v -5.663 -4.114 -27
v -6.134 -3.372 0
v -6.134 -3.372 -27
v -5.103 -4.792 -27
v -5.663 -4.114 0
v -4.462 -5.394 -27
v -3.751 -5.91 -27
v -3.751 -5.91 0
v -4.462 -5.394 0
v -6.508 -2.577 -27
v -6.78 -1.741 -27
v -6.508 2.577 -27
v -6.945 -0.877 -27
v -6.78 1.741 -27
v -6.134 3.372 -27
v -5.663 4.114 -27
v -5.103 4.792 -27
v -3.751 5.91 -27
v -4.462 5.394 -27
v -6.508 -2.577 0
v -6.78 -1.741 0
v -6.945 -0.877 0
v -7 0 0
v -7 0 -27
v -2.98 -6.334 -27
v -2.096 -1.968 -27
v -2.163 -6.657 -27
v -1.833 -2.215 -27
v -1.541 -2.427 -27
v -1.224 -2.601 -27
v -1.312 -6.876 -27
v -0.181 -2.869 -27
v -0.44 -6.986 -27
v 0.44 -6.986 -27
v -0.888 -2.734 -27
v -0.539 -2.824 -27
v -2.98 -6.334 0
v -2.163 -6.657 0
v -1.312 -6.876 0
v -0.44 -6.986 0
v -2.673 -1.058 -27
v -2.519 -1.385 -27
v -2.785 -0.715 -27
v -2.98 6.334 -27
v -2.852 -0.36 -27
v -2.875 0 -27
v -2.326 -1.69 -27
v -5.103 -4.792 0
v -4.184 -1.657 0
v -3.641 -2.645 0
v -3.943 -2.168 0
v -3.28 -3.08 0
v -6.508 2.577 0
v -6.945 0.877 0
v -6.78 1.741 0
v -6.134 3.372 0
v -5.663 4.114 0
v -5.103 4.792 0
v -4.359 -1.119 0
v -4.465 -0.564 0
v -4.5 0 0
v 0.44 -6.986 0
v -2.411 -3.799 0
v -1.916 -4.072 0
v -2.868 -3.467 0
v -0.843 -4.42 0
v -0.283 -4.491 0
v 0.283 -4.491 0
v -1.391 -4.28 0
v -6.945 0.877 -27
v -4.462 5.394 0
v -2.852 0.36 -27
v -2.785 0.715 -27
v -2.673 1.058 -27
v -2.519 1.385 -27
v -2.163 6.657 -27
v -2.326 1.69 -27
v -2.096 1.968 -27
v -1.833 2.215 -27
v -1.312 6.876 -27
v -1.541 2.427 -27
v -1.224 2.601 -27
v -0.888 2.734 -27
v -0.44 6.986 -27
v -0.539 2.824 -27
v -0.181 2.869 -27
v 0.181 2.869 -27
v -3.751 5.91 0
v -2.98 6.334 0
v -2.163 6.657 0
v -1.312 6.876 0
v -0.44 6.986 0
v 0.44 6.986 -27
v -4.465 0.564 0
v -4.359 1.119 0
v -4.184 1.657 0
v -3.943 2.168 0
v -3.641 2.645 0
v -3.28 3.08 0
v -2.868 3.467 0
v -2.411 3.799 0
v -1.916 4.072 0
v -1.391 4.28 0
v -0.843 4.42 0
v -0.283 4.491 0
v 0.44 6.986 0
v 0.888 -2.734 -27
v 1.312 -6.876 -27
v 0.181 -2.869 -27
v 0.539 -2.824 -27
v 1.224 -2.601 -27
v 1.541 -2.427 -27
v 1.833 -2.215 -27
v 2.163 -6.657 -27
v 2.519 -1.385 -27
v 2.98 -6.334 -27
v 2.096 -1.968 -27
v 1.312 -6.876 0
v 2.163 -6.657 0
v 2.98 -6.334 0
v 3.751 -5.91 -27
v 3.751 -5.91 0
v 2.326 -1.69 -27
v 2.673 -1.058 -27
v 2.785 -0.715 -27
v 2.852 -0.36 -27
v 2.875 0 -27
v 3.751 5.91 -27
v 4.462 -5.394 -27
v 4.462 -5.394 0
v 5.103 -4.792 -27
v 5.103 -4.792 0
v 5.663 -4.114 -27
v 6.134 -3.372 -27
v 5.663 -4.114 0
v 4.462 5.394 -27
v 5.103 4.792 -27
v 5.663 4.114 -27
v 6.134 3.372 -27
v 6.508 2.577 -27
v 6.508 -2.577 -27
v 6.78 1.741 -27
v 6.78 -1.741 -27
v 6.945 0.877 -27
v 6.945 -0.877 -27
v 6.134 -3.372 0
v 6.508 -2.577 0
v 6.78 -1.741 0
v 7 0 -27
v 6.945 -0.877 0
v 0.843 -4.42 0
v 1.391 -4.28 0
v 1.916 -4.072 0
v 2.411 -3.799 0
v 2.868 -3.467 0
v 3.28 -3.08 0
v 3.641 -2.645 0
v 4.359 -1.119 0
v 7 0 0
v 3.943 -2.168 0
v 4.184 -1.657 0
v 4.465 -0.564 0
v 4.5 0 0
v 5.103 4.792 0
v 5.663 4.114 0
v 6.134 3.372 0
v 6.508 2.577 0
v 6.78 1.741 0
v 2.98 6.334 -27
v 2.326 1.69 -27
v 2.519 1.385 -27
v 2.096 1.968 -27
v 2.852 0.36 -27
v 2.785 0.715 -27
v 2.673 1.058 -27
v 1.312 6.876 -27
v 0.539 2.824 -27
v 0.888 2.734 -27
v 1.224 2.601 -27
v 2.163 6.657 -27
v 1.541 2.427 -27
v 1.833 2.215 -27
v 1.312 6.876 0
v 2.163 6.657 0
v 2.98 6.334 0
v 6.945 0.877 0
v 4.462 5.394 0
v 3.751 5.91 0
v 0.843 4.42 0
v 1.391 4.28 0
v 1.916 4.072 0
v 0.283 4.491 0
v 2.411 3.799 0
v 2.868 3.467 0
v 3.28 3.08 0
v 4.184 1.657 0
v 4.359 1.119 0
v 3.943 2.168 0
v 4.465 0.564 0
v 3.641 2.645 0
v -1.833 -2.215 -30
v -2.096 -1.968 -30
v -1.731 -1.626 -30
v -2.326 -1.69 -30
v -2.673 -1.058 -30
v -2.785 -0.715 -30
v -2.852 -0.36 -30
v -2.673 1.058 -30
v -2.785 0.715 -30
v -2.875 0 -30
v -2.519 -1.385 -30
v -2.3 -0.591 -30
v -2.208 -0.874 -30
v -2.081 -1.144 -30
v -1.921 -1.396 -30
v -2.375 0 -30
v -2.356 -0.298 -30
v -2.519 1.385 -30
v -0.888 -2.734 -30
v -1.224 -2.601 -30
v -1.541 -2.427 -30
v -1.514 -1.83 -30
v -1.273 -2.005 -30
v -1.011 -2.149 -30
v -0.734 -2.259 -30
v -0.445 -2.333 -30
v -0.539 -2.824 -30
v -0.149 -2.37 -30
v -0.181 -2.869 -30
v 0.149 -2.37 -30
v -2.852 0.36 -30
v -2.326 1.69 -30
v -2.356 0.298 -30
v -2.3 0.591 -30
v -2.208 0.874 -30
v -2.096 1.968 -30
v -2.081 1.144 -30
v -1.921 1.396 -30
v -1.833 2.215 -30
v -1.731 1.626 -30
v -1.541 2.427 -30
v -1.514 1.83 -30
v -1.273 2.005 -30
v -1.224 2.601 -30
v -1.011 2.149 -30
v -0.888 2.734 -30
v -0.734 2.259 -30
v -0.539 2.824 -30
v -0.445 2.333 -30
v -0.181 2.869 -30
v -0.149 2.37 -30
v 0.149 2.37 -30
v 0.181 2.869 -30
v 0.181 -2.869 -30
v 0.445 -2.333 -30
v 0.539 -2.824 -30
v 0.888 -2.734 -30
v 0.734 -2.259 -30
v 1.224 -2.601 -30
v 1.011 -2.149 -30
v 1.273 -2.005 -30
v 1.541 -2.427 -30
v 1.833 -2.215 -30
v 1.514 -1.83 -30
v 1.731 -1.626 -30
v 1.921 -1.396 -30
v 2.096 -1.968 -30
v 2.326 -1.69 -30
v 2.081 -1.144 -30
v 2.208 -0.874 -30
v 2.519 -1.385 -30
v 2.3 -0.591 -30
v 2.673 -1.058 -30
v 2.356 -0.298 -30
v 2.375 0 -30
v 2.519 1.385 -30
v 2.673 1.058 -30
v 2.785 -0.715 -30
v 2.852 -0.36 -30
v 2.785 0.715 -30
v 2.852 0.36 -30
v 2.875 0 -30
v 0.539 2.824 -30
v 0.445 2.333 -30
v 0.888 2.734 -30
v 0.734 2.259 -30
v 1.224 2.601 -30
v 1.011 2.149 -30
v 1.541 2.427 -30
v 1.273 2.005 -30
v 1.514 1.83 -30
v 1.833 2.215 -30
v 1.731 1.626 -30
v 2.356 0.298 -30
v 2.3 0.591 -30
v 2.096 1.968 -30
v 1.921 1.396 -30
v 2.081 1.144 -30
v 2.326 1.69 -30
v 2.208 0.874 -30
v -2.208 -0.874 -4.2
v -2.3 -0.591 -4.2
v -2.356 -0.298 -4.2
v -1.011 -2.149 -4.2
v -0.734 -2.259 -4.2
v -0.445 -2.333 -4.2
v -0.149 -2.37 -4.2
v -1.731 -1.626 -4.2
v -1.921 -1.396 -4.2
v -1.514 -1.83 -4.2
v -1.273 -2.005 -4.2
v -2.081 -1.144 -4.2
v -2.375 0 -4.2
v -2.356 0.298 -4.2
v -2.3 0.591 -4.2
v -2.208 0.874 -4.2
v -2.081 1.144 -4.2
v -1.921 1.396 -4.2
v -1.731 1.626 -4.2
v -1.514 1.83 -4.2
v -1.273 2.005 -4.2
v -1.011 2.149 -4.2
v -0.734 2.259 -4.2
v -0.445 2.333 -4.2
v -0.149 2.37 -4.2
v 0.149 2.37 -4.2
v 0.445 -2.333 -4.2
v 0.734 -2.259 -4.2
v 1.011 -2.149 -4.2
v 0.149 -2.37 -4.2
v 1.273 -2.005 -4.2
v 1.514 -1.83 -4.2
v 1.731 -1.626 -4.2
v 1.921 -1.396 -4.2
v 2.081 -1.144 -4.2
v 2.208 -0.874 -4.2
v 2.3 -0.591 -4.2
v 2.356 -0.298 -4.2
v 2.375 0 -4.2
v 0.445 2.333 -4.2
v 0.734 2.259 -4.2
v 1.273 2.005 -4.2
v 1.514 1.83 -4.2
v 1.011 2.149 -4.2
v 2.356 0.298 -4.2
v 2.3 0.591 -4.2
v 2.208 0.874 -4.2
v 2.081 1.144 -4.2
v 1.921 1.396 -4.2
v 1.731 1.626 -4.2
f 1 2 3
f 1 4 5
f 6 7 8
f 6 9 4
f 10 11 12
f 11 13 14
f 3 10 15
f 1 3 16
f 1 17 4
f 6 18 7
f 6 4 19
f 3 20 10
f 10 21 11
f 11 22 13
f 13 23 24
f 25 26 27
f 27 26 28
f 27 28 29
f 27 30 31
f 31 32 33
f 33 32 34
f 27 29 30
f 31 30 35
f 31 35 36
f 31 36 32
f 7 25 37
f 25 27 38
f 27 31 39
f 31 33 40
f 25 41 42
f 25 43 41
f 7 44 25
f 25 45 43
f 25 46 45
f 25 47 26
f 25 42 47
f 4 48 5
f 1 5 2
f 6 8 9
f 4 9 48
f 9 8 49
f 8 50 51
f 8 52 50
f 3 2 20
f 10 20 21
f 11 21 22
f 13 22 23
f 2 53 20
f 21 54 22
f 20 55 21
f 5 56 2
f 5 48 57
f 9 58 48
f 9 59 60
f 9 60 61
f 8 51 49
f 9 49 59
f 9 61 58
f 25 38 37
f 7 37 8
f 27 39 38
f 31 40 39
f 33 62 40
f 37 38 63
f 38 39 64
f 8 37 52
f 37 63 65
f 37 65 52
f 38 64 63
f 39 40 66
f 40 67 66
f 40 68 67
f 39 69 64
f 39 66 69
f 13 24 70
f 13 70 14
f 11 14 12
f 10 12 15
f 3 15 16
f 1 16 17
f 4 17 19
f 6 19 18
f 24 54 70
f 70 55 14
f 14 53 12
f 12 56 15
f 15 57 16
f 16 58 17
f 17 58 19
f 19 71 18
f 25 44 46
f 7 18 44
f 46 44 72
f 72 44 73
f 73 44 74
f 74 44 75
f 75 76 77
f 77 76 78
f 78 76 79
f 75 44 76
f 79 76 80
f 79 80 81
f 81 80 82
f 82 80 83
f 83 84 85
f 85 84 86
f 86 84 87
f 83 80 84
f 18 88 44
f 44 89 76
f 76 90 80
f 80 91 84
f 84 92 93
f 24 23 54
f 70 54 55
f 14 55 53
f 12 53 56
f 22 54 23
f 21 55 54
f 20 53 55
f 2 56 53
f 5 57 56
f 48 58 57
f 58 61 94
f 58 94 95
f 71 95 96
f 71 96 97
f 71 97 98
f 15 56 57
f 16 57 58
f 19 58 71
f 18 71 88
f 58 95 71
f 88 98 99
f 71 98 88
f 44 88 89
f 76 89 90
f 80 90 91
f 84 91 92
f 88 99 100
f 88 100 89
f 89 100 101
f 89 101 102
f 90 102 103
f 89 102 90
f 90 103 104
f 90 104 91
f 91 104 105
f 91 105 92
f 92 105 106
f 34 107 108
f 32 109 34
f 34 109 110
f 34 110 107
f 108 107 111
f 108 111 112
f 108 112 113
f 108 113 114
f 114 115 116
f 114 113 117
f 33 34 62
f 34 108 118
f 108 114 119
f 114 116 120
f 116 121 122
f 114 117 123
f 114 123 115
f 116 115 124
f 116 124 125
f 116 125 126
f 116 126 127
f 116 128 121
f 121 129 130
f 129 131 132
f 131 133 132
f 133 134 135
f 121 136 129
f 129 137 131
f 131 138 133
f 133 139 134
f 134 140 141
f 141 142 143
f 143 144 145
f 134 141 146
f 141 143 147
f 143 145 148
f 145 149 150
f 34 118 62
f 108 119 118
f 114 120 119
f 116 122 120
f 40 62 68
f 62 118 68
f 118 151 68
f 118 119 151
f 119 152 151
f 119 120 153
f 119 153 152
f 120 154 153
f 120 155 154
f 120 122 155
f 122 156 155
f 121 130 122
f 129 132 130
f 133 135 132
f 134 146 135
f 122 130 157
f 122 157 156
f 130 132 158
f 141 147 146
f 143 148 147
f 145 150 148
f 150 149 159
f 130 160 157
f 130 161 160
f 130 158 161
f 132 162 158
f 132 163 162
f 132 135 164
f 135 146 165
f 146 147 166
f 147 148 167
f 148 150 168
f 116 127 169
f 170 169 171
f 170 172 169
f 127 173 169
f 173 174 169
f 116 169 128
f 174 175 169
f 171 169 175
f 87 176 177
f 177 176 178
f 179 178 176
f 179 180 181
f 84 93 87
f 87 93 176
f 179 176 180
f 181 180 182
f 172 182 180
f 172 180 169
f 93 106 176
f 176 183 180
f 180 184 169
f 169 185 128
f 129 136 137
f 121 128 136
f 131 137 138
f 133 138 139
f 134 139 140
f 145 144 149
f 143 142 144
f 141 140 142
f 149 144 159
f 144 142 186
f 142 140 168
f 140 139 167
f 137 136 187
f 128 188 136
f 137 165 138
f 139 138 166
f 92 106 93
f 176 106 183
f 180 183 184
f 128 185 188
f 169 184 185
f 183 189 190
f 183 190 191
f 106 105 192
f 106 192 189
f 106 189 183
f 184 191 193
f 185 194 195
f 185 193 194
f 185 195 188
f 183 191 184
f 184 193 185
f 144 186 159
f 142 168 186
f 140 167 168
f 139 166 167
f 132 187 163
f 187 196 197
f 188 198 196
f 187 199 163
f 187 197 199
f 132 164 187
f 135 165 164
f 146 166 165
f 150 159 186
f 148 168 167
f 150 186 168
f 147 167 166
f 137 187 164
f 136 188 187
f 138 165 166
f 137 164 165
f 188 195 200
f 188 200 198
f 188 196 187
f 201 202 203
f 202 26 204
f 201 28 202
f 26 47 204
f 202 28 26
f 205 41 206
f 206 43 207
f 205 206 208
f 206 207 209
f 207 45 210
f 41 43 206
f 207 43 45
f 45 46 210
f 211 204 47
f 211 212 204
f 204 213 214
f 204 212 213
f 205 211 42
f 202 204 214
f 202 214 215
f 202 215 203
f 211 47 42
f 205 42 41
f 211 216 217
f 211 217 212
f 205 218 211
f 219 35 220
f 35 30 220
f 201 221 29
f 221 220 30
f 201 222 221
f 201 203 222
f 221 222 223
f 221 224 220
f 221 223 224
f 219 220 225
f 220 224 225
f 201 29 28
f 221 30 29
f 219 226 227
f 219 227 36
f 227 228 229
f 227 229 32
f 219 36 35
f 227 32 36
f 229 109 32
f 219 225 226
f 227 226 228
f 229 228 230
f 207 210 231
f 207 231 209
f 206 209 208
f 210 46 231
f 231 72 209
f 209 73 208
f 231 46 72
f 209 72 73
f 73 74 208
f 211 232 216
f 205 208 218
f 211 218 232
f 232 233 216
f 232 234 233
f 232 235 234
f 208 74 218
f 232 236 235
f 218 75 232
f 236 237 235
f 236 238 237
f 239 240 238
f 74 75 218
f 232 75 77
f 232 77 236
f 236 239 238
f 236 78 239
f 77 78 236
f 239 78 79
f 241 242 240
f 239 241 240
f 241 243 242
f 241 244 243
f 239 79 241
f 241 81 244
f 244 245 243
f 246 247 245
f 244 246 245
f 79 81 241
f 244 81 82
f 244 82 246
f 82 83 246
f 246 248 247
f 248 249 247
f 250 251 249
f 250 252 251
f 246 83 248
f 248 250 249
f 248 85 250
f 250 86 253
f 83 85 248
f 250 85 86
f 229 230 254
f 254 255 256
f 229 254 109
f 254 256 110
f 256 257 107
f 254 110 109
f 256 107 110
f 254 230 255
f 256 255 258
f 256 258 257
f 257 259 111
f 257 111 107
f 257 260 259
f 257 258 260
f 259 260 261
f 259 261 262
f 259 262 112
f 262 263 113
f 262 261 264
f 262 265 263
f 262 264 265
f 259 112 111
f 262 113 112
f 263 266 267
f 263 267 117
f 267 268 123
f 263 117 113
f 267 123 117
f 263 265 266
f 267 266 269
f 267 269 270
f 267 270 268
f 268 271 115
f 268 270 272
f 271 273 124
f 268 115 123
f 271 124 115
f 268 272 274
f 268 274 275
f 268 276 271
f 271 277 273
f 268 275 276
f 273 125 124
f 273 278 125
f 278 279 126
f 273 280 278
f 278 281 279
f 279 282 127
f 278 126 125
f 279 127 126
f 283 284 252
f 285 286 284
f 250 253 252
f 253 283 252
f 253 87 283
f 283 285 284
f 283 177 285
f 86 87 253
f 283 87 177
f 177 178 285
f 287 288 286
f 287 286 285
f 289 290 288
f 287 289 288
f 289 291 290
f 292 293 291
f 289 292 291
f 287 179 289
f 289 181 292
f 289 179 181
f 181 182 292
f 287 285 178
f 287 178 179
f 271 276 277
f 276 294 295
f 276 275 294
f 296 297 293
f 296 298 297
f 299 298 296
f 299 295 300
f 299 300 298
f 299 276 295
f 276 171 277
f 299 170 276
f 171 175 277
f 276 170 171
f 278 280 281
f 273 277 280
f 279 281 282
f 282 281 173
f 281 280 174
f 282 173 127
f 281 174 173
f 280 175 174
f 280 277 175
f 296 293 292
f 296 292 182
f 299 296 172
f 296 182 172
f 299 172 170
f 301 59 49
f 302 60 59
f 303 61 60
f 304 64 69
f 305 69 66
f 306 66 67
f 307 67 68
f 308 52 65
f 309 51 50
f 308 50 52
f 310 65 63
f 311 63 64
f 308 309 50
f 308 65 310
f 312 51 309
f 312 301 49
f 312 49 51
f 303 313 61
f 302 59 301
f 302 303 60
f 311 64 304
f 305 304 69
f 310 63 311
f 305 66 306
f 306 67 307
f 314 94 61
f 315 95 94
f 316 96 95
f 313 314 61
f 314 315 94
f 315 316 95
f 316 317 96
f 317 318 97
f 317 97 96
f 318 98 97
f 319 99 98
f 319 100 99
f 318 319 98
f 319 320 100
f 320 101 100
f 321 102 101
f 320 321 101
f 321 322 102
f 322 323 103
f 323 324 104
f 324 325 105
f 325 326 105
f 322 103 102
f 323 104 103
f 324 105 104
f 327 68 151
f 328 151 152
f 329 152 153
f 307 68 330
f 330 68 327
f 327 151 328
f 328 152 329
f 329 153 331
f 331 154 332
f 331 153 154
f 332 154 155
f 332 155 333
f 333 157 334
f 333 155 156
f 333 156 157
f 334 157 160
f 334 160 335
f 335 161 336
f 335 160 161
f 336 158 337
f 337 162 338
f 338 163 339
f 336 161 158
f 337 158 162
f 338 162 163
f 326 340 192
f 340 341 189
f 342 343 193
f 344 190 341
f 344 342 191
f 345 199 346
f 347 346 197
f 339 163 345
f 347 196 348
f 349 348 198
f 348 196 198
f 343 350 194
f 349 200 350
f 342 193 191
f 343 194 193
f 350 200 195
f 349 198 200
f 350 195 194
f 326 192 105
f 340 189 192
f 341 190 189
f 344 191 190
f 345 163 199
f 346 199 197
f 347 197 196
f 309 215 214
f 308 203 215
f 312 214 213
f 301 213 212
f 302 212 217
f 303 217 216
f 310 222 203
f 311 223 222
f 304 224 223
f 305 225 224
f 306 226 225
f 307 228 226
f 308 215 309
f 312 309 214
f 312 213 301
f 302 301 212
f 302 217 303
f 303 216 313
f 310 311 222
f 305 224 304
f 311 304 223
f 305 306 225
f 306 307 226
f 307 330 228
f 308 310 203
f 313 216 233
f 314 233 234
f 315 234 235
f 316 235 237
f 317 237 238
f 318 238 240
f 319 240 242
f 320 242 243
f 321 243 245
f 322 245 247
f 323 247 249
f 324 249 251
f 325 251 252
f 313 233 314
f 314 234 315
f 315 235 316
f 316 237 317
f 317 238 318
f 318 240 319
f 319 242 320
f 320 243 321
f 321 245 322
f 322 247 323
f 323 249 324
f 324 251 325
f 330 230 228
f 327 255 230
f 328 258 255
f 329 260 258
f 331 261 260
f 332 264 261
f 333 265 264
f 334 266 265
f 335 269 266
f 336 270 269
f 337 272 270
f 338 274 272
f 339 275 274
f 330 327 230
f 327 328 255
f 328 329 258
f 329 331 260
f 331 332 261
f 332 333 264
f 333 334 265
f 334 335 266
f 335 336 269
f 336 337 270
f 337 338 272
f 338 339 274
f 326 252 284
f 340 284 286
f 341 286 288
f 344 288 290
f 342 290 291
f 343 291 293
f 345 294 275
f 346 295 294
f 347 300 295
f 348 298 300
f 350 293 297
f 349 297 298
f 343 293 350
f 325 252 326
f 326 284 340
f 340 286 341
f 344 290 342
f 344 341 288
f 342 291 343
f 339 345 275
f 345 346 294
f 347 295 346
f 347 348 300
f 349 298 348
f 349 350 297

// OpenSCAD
$fn = 50;


difference() {
	union() {
		translate(v = [0, 0, -27.0000000000]) {
			cylinder(h = 27, r = 7.0000000000);
		}
		#translate(v = [0, 0, -30.0000000000]) {
			cylinder(h = 30, r = 2.8750000000);
		}
	}
	union() {
		translate(v = [0, 0, 0]) {
			rotate(a = [0, 0, 0]) {
				difference() {
					union() {
						translate(v = [0, 0, -30.0000000000]) {
							cylinder(h = 30, r = 2.2500000000);
						}
						translate(v = [0, 0, -4.2000000000]) {
							cylinder(h = 4.2000000000, r1 = 2.3750000000, r2 = 4.5000000000);
						}
						translate(v = [0, 0, -30.0000000000]) {
							cylinder(h = 30, r = 2.3750000000);
						}
						translate(v = [0, 0, -30.0000000000]) {
							cylinder(h = 30, r = 2.2500000000);
						}
					}
					union();
				}
			}
		}
	}
}
